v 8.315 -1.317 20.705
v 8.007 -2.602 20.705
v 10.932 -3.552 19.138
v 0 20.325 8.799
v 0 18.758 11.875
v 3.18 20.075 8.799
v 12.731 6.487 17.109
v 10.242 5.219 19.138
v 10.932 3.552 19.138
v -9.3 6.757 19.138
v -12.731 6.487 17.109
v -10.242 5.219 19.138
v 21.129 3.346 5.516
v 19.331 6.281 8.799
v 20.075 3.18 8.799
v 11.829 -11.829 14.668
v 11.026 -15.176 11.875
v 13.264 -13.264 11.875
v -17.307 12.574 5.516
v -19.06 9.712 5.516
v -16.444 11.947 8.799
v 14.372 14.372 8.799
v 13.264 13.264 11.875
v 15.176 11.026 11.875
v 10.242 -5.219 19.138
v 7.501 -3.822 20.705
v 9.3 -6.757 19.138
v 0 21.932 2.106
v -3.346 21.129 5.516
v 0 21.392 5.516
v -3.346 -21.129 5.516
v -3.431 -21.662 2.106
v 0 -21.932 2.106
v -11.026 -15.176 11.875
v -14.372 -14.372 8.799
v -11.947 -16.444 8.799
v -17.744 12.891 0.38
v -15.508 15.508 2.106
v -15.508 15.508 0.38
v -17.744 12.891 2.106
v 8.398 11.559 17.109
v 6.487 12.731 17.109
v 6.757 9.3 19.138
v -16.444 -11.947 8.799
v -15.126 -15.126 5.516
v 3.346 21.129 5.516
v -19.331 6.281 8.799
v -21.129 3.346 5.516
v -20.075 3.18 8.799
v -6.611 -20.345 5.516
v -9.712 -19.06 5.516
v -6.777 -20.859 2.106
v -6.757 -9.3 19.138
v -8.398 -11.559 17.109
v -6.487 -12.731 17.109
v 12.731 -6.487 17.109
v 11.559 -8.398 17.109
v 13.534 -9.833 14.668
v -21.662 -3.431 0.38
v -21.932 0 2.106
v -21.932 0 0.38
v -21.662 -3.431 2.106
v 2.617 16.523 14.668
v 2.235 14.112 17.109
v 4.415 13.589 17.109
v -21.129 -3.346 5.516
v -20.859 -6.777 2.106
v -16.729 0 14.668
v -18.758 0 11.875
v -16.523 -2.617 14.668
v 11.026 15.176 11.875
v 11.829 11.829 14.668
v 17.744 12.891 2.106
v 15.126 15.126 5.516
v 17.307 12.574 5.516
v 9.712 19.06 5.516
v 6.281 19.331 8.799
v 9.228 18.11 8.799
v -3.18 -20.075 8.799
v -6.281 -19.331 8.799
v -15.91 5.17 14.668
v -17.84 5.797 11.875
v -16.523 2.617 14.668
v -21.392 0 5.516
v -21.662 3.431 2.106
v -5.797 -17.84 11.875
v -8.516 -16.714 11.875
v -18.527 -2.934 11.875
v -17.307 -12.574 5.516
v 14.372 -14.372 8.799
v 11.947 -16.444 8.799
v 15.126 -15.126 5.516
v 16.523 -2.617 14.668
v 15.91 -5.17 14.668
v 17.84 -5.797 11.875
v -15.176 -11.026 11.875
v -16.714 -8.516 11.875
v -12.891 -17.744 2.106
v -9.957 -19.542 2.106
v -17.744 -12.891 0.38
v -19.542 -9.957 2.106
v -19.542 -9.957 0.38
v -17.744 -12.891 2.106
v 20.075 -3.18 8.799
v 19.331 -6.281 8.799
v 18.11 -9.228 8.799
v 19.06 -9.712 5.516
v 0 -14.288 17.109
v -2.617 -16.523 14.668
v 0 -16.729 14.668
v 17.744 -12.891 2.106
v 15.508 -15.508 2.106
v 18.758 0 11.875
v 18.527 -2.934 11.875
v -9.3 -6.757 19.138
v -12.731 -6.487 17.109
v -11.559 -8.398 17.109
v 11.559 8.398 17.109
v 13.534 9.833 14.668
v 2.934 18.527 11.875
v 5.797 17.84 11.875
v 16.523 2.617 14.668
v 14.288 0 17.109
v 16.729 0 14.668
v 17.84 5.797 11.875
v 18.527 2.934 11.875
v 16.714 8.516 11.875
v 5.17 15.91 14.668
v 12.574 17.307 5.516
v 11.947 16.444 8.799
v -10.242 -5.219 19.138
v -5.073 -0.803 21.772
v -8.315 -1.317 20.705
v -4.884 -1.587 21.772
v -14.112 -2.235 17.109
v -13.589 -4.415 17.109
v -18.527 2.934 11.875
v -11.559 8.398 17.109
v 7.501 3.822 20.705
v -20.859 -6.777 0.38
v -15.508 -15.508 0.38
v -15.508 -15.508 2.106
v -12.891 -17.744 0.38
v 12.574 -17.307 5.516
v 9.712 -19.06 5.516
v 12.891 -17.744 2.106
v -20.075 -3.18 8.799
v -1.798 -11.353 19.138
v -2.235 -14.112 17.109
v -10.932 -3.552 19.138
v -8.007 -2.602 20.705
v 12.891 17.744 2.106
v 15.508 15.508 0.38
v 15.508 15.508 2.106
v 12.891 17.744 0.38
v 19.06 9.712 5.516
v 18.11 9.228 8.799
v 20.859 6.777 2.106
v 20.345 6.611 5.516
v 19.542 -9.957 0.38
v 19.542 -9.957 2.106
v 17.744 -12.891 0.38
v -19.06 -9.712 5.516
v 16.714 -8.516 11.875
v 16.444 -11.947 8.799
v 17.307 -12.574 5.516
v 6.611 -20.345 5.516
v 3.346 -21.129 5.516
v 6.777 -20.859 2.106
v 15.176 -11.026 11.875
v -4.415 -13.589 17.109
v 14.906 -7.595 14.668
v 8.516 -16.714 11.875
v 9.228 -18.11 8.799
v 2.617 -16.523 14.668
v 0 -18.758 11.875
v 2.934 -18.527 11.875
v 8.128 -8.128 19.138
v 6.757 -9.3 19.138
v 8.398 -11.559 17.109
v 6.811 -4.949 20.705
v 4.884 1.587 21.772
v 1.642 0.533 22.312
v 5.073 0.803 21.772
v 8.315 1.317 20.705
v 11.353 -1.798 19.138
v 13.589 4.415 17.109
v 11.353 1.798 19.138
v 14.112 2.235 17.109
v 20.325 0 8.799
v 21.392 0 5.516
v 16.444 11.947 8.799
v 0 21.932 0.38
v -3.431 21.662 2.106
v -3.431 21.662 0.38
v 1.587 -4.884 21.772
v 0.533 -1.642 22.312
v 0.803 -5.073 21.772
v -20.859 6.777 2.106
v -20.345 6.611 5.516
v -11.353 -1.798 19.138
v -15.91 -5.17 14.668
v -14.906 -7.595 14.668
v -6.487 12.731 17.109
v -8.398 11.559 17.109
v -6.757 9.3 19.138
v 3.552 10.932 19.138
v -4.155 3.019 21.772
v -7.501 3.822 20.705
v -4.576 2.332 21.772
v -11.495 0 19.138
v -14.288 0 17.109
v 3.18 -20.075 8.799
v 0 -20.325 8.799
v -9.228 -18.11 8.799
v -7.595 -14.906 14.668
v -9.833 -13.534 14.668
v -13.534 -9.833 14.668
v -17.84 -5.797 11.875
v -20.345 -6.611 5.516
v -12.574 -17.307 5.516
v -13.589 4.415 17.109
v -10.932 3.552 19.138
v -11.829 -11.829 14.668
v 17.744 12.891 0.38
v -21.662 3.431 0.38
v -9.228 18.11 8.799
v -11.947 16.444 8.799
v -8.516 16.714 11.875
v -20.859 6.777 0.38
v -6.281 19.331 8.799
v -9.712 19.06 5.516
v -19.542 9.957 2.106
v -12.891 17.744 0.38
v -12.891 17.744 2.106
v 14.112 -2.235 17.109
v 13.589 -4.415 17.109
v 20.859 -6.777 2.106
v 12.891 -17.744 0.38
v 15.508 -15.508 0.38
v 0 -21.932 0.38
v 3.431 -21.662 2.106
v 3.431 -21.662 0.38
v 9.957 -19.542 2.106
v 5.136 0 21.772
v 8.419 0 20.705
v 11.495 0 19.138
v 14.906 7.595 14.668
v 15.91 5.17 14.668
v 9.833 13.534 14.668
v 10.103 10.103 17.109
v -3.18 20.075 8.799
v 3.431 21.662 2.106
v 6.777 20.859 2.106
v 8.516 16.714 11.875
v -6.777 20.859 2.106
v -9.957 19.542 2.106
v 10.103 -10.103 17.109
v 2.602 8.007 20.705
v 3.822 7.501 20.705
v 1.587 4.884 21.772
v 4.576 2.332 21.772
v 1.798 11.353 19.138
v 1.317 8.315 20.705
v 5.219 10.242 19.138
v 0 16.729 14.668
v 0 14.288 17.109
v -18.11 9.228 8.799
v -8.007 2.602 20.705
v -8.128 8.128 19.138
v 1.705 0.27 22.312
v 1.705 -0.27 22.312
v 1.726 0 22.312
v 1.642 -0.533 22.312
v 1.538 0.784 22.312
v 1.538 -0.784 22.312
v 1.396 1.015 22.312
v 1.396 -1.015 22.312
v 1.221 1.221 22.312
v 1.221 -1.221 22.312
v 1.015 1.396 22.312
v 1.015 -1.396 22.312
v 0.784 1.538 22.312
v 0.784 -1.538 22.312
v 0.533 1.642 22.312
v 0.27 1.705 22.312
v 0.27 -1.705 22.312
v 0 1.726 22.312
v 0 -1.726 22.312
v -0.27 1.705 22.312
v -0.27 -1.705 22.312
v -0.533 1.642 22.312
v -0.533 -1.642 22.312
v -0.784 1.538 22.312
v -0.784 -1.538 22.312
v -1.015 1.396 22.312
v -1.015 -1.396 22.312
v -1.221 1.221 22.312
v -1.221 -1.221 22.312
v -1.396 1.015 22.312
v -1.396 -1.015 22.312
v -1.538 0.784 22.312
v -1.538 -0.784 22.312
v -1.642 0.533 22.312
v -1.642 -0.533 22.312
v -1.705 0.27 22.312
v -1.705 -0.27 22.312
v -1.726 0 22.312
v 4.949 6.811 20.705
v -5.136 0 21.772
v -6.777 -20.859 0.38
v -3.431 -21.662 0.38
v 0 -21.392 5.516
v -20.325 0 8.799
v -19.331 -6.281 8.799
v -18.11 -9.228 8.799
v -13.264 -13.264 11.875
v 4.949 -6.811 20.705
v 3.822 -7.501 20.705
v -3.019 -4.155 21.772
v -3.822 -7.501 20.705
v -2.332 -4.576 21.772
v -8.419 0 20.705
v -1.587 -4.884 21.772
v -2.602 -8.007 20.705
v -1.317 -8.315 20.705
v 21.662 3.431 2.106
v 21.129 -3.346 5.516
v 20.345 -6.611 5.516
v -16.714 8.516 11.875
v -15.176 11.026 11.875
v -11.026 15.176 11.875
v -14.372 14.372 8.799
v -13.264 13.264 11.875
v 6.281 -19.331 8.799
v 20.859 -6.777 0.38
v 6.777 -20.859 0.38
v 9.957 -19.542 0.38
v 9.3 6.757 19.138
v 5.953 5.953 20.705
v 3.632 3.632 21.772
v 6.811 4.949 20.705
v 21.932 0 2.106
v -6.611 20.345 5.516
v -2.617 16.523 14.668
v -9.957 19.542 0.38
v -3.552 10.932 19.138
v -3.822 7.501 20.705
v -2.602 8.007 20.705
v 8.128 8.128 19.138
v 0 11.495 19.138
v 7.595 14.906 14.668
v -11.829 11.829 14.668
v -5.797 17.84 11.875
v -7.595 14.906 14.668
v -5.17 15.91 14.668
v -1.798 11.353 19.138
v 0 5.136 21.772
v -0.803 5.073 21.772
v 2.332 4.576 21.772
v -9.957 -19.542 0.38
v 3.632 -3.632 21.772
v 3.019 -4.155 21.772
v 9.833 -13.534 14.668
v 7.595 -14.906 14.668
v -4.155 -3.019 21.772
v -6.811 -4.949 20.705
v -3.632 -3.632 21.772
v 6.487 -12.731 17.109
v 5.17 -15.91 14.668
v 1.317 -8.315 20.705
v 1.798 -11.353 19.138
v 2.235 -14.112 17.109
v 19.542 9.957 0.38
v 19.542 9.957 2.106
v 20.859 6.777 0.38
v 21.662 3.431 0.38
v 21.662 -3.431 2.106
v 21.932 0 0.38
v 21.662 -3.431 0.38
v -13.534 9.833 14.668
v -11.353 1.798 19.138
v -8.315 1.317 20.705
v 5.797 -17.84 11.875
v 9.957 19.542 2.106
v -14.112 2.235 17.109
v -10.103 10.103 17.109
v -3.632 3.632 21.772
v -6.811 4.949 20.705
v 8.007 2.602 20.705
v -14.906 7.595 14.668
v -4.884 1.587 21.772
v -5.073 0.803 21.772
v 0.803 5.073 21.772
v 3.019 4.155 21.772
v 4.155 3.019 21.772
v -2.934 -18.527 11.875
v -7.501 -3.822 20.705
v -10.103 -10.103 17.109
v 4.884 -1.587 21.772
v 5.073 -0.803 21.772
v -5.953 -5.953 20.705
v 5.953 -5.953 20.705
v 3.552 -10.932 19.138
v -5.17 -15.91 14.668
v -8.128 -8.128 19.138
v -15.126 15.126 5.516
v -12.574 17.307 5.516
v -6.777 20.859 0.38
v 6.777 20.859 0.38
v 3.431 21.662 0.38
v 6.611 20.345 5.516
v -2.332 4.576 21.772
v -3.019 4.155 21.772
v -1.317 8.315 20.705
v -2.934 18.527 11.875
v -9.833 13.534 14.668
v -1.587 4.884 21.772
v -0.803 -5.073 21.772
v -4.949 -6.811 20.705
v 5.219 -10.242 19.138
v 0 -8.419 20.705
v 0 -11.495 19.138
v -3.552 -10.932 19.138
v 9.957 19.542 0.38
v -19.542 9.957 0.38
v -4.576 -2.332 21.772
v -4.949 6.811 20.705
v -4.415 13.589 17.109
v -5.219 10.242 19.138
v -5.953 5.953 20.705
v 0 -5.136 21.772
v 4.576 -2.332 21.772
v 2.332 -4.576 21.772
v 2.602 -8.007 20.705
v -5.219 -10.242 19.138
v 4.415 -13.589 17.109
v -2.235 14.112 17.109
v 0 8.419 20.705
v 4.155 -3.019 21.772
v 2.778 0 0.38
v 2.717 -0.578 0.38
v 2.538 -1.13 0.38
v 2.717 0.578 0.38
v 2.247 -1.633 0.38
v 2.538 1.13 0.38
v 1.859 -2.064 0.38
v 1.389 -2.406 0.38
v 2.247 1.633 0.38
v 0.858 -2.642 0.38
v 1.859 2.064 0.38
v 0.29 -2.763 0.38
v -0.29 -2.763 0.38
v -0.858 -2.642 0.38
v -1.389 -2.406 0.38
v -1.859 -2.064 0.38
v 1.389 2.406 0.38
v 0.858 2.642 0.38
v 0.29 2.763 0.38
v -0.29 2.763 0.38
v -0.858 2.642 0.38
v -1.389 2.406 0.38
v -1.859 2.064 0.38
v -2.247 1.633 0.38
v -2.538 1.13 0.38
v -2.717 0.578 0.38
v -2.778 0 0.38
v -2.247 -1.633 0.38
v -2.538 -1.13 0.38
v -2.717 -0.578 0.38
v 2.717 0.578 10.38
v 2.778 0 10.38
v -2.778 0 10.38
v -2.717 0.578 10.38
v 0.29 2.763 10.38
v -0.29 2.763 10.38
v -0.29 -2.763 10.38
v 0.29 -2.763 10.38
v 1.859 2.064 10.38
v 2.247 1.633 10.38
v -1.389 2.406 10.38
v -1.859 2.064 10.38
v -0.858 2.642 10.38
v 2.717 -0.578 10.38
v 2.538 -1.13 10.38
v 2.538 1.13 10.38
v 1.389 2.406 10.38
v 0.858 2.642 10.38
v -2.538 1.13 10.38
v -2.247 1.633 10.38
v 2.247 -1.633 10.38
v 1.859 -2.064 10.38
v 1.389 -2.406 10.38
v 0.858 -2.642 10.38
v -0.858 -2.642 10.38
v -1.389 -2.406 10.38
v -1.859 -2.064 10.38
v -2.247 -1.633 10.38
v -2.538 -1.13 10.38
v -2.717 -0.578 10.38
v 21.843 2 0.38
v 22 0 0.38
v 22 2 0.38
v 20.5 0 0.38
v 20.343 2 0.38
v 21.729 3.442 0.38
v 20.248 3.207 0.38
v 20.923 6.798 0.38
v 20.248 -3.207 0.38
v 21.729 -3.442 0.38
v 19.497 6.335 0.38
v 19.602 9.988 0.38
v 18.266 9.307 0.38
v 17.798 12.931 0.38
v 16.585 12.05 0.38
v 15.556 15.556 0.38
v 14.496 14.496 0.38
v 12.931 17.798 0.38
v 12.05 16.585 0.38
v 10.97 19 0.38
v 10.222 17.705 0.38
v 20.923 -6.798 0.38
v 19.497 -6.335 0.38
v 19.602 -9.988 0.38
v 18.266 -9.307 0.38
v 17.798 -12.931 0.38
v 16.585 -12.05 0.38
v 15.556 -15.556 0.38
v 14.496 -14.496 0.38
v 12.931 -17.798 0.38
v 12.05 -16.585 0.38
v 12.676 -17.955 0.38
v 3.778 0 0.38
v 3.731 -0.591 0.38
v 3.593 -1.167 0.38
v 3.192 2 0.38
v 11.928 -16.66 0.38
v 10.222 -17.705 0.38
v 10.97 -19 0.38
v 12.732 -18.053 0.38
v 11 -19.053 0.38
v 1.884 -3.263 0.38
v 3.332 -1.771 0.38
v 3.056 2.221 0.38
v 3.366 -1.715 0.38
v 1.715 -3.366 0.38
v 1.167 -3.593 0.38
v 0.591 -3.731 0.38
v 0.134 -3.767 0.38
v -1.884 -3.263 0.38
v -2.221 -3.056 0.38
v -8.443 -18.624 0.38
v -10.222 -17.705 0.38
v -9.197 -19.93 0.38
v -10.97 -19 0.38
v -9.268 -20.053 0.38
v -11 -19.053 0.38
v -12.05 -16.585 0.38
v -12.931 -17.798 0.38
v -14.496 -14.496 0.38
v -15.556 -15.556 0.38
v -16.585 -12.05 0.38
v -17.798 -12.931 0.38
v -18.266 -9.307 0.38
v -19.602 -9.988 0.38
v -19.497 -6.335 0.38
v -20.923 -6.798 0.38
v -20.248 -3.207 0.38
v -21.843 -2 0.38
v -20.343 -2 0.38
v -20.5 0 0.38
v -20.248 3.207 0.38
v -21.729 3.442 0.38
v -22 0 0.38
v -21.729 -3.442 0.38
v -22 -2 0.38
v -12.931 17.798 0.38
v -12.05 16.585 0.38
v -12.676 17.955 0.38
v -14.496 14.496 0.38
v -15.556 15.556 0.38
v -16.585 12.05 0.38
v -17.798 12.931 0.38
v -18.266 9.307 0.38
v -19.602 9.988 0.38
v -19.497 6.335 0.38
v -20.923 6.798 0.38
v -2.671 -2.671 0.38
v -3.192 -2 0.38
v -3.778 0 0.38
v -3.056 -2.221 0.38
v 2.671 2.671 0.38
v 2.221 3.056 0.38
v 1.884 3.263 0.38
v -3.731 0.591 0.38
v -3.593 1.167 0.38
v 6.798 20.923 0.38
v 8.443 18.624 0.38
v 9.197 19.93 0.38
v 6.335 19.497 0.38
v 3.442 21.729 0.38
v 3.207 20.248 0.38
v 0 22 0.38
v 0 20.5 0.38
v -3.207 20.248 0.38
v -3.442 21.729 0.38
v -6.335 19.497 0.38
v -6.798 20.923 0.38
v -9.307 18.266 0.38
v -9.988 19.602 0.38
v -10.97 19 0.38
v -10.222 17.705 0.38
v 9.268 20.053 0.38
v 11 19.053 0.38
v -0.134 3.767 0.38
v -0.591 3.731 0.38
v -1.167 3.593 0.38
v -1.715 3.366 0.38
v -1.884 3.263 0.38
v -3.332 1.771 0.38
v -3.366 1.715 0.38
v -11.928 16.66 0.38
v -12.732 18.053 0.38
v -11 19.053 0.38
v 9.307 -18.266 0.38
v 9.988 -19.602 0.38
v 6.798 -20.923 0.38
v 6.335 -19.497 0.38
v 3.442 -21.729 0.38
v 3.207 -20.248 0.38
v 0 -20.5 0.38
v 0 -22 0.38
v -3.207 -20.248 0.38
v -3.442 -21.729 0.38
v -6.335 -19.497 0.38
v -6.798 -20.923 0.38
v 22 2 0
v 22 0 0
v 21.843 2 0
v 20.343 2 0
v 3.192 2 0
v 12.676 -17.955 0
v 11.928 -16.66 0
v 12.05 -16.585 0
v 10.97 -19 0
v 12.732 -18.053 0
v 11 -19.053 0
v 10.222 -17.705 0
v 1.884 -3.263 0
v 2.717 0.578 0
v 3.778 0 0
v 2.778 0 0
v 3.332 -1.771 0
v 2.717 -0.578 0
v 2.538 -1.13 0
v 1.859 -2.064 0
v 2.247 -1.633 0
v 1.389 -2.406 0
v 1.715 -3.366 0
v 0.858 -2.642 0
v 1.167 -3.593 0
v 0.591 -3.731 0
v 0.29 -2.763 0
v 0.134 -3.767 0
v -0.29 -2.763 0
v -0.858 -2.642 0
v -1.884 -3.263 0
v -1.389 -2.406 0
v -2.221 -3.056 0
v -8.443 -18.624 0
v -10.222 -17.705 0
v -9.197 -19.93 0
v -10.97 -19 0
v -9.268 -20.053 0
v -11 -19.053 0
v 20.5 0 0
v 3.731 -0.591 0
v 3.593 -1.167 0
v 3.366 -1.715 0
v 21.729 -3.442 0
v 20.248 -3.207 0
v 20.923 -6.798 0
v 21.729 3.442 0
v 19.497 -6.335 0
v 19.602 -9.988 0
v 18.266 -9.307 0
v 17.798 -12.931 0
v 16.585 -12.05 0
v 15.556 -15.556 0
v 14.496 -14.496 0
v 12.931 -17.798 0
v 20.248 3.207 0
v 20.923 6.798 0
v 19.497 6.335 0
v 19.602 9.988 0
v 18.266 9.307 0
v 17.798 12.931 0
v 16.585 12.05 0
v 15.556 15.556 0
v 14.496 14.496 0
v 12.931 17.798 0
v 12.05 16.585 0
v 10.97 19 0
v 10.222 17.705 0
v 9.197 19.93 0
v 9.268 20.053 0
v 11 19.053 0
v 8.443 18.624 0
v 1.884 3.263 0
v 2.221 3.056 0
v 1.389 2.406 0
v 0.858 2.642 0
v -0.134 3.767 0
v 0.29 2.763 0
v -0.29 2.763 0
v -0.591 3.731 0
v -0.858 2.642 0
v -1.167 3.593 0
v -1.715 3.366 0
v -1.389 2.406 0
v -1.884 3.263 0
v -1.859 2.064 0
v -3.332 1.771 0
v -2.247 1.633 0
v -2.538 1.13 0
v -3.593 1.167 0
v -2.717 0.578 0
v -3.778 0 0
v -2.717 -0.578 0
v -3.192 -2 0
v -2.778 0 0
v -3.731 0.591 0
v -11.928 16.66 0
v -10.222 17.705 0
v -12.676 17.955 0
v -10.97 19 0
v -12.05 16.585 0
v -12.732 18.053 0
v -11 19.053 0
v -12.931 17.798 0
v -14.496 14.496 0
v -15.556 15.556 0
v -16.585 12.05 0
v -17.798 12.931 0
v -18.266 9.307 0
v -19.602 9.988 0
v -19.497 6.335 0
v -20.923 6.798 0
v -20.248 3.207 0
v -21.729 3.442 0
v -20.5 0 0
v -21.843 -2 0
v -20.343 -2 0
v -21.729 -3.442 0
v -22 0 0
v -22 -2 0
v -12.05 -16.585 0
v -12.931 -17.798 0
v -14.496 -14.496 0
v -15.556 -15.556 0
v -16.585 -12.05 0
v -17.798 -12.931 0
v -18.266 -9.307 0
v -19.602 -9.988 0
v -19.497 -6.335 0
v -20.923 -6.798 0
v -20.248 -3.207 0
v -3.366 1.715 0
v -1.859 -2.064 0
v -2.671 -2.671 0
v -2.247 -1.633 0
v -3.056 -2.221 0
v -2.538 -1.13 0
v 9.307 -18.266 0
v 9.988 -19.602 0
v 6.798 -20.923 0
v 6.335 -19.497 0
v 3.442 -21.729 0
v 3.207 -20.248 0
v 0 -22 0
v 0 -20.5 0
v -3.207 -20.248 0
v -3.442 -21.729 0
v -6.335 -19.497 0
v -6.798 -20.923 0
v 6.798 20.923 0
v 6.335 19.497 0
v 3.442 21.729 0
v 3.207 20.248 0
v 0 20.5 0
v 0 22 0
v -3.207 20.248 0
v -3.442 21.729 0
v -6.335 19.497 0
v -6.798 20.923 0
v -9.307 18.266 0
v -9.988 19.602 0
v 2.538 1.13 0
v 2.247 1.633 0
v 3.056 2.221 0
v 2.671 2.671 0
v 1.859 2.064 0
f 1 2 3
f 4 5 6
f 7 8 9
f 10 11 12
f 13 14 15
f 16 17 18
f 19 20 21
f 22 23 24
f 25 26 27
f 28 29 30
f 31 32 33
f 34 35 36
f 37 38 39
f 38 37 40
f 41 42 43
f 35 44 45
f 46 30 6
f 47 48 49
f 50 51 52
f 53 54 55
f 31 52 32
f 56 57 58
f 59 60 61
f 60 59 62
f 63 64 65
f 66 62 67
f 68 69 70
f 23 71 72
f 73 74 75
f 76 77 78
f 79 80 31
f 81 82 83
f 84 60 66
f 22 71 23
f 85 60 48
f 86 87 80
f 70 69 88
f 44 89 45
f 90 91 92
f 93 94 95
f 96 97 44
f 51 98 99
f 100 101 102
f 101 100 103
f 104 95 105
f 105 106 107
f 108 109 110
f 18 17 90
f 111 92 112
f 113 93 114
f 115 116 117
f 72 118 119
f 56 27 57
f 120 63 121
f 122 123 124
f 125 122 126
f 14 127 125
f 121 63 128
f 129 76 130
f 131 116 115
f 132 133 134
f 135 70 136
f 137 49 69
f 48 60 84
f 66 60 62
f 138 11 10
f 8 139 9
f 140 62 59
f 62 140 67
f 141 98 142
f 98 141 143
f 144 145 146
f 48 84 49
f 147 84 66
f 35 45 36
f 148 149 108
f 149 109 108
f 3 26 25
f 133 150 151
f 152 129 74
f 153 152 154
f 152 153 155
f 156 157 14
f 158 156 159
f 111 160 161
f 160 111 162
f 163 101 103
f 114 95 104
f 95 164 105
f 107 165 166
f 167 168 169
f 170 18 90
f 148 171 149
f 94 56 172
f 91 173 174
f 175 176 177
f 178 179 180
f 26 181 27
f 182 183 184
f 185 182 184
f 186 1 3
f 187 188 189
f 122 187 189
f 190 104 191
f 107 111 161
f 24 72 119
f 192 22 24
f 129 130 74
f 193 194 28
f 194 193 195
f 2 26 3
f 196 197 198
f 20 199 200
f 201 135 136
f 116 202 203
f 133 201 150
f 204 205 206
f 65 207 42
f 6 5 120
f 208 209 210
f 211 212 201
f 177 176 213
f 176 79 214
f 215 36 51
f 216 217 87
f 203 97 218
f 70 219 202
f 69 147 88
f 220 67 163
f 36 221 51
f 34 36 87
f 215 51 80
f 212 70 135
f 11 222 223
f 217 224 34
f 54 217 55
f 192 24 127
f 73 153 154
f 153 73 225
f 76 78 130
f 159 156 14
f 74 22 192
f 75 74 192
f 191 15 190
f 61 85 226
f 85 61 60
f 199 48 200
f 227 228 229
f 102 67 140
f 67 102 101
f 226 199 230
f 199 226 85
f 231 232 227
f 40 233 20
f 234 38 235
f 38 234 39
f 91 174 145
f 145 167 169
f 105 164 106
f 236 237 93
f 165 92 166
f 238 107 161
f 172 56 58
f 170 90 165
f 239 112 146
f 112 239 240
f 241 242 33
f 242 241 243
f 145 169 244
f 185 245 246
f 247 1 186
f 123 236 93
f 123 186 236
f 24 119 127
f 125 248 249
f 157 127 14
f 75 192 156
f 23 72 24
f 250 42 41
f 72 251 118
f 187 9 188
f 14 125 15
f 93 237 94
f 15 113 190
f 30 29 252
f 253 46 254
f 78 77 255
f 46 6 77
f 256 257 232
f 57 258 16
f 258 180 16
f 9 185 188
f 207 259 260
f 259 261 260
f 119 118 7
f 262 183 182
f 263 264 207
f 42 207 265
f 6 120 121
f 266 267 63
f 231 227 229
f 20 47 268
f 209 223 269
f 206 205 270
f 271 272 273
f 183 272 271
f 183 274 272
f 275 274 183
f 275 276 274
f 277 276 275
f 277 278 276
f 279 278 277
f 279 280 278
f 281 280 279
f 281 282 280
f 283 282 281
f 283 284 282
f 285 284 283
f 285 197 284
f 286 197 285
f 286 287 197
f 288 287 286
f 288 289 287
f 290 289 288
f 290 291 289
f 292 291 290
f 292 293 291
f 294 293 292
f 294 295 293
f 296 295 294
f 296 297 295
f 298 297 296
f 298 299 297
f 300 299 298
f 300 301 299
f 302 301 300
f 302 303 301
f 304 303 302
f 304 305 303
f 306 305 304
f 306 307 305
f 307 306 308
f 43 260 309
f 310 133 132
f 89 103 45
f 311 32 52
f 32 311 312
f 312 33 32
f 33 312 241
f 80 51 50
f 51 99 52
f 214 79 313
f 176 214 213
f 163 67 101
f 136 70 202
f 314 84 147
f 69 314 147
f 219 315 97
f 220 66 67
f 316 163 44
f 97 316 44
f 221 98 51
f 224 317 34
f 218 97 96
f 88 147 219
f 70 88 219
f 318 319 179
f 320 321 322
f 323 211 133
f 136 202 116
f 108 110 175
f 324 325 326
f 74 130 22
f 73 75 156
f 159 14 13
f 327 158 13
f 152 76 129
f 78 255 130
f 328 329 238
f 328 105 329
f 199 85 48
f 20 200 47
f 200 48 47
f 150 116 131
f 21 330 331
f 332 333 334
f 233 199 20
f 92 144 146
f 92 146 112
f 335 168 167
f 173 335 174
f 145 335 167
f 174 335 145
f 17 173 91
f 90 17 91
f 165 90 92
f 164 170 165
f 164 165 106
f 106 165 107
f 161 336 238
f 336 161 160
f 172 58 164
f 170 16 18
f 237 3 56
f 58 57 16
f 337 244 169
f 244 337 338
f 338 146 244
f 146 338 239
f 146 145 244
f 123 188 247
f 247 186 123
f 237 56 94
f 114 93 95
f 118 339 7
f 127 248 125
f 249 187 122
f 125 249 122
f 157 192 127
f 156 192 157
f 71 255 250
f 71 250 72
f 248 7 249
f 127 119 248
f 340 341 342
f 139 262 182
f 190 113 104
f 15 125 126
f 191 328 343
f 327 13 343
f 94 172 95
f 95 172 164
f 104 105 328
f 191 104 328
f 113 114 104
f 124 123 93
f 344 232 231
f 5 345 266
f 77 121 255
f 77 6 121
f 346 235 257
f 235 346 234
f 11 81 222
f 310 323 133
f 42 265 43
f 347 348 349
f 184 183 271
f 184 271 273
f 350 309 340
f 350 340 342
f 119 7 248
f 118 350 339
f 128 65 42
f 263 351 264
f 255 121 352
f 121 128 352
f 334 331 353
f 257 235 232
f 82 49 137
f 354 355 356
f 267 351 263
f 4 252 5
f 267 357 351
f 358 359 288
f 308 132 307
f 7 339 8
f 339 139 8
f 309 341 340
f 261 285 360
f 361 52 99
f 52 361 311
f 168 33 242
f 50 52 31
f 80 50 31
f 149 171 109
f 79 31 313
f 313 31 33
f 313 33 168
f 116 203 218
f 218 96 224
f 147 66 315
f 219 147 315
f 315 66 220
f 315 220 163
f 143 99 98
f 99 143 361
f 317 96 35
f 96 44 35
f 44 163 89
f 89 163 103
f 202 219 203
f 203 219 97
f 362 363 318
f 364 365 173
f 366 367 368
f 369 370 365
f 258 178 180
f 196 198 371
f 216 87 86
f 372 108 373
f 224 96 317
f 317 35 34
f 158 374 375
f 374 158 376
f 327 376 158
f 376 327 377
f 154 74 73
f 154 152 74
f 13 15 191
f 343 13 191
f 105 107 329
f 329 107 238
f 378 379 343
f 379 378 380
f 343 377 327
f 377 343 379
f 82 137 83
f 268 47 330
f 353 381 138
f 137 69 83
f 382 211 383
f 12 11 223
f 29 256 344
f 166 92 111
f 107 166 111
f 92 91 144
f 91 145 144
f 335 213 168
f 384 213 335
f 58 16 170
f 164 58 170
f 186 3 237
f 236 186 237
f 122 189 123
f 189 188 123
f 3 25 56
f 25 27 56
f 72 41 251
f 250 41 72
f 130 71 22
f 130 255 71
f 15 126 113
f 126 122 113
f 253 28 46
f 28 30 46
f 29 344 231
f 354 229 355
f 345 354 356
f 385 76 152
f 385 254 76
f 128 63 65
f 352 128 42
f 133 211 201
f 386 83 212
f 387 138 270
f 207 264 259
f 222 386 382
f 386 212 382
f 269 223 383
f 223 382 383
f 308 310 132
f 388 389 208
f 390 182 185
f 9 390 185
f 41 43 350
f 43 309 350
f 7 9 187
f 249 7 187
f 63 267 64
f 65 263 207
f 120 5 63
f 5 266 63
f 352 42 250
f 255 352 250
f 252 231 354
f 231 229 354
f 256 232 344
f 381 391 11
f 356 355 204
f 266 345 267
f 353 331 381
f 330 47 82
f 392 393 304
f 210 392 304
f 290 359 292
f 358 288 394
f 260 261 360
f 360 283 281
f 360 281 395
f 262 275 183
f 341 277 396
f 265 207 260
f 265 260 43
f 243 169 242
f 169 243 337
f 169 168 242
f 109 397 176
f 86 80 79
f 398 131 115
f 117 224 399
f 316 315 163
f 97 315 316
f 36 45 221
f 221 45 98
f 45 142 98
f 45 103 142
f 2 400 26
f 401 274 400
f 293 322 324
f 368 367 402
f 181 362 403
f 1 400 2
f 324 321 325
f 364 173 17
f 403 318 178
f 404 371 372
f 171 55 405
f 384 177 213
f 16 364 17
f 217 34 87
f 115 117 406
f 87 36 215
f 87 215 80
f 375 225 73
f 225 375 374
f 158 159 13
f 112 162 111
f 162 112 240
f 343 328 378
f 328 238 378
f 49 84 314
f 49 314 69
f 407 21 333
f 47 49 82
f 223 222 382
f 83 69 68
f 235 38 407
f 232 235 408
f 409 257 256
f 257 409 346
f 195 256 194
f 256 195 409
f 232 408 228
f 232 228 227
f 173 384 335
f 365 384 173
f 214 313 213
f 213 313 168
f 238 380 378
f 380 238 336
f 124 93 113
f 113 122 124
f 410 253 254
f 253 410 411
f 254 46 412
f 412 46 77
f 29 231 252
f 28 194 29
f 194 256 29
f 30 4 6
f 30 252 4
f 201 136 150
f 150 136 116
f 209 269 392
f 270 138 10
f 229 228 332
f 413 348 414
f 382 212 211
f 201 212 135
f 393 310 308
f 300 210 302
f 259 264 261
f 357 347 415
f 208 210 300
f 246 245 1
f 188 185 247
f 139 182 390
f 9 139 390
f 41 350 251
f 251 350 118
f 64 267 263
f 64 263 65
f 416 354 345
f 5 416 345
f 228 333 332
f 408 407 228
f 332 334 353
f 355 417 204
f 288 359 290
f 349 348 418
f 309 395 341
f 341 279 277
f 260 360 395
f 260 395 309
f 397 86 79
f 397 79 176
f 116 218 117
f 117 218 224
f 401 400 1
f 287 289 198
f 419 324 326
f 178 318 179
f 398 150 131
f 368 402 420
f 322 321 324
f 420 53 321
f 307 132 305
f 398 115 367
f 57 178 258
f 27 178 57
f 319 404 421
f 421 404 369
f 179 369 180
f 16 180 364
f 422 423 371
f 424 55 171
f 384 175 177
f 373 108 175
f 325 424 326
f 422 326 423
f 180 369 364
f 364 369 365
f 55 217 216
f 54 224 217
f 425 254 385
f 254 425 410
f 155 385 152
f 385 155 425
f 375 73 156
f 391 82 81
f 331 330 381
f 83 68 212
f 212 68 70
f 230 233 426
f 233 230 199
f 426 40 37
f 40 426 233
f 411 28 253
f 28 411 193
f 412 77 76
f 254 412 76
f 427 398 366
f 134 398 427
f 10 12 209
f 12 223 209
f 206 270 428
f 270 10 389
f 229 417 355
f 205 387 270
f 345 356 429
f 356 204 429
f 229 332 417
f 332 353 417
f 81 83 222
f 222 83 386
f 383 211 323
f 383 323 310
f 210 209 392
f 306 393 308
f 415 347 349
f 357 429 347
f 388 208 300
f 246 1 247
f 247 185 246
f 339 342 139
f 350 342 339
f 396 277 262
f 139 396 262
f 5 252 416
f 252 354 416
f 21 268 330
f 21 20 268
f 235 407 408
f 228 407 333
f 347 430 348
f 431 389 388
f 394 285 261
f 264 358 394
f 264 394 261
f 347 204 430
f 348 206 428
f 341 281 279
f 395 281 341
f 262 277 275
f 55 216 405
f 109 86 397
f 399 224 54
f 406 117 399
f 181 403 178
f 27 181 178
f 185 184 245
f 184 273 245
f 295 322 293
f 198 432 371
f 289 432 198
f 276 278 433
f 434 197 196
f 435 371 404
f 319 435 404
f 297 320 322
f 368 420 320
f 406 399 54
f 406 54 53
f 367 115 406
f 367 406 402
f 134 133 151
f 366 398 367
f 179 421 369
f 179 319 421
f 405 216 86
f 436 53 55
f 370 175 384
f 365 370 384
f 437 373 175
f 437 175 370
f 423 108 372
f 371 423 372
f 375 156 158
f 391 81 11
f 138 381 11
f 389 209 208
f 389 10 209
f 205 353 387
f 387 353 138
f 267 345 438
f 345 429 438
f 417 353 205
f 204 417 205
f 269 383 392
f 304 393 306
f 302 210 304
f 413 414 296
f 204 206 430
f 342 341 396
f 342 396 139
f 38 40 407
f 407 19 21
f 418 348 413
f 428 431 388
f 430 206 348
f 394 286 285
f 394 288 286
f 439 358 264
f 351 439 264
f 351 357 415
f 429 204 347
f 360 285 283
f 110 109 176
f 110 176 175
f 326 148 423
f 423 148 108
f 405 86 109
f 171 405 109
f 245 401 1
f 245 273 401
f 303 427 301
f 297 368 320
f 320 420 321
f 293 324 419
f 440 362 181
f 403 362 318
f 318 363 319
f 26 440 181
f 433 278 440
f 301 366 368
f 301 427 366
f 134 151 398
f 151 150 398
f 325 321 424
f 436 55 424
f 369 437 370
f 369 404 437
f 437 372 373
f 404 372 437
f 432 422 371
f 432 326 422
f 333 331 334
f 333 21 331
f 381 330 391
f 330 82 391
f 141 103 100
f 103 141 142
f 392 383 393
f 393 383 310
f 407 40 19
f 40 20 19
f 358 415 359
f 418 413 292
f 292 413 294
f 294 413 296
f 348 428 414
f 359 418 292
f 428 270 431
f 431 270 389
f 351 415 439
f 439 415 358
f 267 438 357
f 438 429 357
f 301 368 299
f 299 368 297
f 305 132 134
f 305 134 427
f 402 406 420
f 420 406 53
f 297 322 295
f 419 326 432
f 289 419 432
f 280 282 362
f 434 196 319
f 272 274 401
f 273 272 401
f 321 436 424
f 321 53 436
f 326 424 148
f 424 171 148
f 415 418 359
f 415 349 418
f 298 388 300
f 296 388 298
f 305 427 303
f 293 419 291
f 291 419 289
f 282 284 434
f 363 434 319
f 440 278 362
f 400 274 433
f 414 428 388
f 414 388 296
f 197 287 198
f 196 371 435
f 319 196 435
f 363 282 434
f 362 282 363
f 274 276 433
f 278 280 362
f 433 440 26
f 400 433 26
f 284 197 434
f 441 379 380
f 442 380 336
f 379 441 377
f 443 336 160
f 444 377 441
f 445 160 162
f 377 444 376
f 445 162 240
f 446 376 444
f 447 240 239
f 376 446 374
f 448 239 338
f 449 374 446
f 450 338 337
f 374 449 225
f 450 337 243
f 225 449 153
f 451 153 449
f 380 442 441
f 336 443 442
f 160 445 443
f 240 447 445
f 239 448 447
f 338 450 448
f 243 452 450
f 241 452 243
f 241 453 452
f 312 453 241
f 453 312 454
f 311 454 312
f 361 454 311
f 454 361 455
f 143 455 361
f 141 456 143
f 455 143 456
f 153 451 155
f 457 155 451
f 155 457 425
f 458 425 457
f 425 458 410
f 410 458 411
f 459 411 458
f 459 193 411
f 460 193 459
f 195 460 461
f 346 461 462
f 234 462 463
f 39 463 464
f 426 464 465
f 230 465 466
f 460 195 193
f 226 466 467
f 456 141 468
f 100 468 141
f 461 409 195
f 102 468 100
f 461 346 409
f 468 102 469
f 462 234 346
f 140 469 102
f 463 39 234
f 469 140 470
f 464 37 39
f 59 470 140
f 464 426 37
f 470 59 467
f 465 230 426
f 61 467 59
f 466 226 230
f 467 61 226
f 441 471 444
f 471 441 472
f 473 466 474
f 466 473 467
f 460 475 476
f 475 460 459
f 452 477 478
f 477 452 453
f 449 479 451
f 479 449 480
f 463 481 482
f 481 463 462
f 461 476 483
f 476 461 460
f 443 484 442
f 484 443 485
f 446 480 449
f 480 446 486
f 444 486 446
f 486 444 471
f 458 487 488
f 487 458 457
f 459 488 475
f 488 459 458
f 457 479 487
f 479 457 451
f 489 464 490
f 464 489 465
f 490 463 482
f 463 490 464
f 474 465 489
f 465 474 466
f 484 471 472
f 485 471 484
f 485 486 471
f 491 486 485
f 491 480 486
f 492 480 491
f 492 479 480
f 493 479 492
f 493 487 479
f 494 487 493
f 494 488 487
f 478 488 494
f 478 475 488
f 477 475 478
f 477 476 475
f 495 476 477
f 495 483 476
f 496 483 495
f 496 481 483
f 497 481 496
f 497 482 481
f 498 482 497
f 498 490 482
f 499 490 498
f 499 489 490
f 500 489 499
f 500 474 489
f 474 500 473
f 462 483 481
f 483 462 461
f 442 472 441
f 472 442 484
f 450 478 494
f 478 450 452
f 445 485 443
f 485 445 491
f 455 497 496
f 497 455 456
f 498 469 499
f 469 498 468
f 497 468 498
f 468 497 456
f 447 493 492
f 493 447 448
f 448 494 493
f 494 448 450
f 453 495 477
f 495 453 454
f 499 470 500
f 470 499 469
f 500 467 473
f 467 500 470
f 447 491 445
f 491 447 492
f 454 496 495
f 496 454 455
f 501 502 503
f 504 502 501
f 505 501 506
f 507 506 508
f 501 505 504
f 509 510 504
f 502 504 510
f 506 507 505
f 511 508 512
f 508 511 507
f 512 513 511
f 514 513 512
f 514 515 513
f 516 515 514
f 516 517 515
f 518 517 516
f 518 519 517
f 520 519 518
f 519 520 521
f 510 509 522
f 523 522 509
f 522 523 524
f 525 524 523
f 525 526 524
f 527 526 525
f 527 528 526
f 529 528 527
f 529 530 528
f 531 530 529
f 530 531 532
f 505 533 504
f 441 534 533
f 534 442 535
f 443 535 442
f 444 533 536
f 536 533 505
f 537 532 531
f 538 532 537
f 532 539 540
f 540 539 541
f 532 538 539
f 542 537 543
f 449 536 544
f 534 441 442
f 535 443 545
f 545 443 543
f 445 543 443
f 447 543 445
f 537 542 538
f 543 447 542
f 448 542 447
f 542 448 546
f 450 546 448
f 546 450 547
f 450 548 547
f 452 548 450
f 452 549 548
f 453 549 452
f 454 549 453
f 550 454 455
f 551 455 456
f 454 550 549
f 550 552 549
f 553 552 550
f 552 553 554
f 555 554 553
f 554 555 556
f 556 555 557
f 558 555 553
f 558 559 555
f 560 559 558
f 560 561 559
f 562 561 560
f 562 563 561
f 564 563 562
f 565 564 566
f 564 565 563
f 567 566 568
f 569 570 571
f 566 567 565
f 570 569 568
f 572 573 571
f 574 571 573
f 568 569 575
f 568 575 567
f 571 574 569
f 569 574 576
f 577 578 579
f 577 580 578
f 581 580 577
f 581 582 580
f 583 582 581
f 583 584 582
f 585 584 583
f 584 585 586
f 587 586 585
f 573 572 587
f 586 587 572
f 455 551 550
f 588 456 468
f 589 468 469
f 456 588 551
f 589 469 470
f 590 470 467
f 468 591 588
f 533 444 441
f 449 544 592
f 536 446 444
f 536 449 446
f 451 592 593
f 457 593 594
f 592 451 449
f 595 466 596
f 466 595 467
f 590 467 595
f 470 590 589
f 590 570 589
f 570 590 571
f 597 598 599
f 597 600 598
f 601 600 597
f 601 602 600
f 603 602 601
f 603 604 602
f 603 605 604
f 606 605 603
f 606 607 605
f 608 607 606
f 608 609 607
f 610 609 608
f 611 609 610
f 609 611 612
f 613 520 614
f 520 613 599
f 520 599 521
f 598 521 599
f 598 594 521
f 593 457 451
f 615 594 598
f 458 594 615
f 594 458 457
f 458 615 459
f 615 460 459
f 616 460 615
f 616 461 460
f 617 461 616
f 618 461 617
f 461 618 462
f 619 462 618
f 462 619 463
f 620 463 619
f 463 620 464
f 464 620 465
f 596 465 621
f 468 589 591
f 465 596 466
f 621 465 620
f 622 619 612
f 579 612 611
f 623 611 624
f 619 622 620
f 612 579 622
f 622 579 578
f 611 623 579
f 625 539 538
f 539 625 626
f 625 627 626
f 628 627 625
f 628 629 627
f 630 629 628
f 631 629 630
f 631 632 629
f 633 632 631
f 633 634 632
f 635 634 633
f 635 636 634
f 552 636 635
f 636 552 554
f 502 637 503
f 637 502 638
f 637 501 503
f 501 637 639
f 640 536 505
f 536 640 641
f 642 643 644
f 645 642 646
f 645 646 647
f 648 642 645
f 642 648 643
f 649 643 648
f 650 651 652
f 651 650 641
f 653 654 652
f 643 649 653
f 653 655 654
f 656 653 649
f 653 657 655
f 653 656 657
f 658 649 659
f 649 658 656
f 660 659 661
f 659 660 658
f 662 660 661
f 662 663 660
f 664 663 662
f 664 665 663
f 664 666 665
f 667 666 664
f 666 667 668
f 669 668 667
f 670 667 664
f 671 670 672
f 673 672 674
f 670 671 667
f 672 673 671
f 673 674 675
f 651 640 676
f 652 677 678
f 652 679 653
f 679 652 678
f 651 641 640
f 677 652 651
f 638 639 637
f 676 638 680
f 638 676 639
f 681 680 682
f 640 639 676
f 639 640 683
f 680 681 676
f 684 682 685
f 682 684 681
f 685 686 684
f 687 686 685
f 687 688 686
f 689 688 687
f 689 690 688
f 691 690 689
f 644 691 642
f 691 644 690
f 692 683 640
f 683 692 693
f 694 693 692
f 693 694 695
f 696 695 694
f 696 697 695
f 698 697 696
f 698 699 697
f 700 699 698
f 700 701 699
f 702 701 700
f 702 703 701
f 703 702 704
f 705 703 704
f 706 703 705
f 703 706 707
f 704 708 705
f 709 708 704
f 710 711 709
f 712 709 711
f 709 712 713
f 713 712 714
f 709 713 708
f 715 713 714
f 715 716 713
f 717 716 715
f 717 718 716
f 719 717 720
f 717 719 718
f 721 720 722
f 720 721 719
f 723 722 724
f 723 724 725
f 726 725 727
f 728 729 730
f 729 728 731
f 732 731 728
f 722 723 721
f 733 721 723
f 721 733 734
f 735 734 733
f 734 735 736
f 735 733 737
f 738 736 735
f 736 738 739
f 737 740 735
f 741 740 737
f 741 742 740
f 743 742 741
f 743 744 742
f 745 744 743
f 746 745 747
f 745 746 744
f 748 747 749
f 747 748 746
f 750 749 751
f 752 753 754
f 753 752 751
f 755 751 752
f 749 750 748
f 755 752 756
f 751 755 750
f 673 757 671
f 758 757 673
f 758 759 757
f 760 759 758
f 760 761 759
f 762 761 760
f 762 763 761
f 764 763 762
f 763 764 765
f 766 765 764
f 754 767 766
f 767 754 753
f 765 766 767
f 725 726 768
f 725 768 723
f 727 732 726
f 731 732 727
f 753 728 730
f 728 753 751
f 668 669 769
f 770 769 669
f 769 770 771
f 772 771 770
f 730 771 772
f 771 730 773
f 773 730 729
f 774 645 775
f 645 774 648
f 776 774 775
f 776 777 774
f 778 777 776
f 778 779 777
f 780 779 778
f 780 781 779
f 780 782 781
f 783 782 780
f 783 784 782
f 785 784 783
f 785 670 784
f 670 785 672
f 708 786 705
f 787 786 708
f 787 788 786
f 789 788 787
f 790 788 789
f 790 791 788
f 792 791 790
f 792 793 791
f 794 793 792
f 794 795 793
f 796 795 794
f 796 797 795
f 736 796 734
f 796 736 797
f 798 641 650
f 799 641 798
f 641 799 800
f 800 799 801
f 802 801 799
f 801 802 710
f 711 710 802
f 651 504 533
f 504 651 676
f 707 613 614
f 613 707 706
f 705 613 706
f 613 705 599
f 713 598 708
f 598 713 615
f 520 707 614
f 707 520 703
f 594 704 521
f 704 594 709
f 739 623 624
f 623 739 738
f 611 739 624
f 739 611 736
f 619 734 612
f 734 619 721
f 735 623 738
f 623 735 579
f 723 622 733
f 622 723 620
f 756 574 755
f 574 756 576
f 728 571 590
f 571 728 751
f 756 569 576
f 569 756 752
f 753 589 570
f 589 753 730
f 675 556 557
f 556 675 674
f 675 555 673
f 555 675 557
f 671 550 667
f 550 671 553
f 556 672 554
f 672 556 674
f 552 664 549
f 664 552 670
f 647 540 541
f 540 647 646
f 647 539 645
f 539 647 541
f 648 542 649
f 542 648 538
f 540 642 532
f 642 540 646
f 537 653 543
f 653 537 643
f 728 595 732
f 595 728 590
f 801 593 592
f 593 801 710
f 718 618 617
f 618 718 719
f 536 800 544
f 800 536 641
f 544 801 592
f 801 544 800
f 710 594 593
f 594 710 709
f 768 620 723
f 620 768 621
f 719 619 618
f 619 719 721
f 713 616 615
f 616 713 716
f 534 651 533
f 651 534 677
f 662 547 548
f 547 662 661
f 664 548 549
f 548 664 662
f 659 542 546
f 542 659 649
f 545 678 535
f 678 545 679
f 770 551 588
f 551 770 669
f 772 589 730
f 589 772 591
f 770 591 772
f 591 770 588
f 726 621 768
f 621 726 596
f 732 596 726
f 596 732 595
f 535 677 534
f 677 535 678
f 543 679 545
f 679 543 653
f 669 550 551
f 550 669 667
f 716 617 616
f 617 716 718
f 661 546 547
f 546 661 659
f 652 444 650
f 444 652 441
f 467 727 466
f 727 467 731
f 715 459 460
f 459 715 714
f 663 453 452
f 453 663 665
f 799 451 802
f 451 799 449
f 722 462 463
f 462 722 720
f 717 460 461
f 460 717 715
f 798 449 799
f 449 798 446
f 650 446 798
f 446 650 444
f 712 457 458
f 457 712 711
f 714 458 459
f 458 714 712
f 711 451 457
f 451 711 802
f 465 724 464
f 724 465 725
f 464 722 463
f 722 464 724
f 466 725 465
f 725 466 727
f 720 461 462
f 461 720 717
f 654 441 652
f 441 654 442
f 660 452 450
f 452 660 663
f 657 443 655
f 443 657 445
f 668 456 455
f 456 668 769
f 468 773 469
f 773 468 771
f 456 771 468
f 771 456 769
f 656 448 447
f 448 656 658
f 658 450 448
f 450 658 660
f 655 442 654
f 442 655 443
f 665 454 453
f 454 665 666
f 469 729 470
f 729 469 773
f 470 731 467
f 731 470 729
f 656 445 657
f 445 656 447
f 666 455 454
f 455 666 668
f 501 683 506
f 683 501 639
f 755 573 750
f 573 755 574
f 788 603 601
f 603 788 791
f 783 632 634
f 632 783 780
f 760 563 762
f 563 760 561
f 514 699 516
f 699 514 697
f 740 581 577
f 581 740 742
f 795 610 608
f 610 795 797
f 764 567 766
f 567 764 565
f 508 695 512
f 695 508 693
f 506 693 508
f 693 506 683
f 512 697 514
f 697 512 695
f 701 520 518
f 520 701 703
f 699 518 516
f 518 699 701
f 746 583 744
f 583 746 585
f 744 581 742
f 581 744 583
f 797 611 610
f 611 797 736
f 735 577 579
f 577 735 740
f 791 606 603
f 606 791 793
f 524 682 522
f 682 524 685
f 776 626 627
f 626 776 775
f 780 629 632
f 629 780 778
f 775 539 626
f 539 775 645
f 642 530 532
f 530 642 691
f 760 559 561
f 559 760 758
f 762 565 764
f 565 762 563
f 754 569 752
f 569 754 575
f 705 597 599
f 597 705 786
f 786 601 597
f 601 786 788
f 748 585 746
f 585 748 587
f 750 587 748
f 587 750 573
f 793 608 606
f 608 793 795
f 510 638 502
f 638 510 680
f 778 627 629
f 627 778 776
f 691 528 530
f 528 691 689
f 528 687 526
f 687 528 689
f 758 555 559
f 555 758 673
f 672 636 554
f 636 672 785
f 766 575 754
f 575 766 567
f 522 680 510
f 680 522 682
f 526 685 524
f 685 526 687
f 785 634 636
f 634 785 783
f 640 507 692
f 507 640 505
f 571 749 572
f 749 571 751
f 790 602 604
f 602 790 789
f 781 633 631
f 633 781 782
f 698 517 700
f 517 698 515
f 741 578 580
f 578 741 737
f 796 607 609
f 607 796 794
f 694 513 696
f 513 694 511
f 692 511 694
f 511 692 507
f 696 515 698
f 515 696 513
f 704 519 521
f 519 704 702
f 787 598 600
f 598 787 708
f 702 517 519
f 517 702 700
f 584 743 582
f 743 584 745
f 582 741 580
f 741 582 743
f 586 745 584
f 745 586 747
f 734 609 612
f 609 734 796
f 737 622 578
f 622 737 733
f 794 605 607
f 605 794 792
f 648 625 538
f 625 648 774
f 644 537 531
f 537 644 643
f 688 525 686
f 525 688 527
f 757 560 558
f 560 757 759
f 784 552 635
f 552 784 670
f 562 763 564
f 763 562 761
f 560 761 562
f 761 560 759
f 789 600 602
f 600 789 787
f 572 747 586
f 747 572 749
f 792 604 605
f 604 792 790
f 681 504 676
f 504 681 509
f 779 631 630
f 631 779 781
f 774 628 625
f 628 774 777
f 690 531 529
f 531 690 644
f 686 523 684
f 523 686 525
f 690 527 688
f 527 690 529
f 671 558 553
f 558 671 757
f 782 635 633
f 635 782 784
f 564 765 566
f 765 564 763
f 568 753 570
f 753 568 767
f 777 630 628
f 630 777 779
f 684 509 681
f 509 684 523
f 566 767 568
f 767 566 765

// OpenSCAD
// file: polyScrewThread_r1.scad
/*
 *    polyScrewThread_r1.scad    by aubenc @ Thingiverse
 *
 * This script contains the library modules that can be used to generate
 * threaded rods, screws and nuts.
 *
 * http://www.thingiverse.com/thing:8796
 *
 * CC Public Domain
 */


/* Example:
 * Just a 100mm long threaded rod.
 *
 * screw_thread(15,   // Outer diameter of the thread
 *               4,   // Step, traveling length per turn, also, tooth height, whatever...
 *              55,   // Degrees for the shape of the tooth 
 *                       (XY plane = 0, Z = 90, btw, 0 and 90 will/should not work...)
 *             100,   // Length (Z) of the tread
 *            PI/2,   // Resolution, one face each "PI/2" mm of the perimeter, 
 *               0);  // Countersink style:
 *                         -2 - Not even flat ends
 *                         -1 - Bottom (countersink'd and top flat)
 *                          0 - None (top and bottom flat)
 *                          1 - Top (bottom flat)
 *                          2 - Both (countersink'd)
 */
module screw_thread(od,st,lf0,lt,rs,cs)
{
    or=od/2;
    ir=or-st/2*cos(lf0)/sin(lf0);
    pf=2*PI*or;
    sn=floor(pf/rs);
    lfxy=360/sn;
    ttn=round(lt/st+1);
    zt=st/sn;

    intersection()
    {
        if (cs >= -1)
        {
           thread_shape(cs,lt,or,ir,sn,st);
        }

        full_thread(ttn,st,sn,zt,lfxy,or,ir);
    }
}

/* Example.
 * A nut for the thread rod example.
 *
 * hexa_nut(24,  // Distance between flats
 *           8,  // Height 
 *           4,  // Step height (the half will be used to countersink the ends)
 *          55,  // Degrees (same as used for the screw_thread example)
 *          15,  // Outer diameter of the thread to match
 *         0.5)  // Resolution, you may want to set this to small values
 *                  (quite high res) to minimize overhang issues
 *
 */
module hex_nut(df,hg,sth,clf,cod,crs)
{

    difference()
    {
        hex_head(hg,df);

        hex_countersink_ends(sth/2,cod,clf,crs,hg);

        screw_thread(cod,sth,clf,hg,crs,-2);
    }
}


module hex_screw(od,st,lf0,lt,rs,cs,df,hg,ntl,ntd)
{
    ntr=od/2-(st/2)*cos(lf0)/sin(lf0);

    union()
    {
        hex_head(hg,df);

        translate([0,0,hg])
        if ( ntl == 0 )
        {
            cylinder(h=0.01, r=ntr, center=true);
        }
        else
        {
            if ( ntd == -1 )
            {
                cylinder(h=ntl+0.01, r=ntr, $fn=floor(od*PI/rs), center=false);
            }
            else if ( ntd == 0 )
            {
                union()
                {
                    cylinder(h=ntl-st/2,
                             r=od/2, $fn=floor(od*PI/rs), center=false);

                    translate([0,0,ntl-st/2])
                    cylinder(h=st/2,
                             r1=od/2, r2=ntr, 
                             $fn=floor(od*PI/rs), center=false);
                }
            }
            else
            {
                cylinder(h=ntl, r=ntd/2, $fn=ntd*PI/rs, center=false);
            }
        }

        translate([0,0,ntl+hg]) screw_thread(od,st,lf0,lt,rs,cs);
    }
}

module hex_screw_0(od,st,lf0,lt,rs,cs,df,hg,ntl,ntd)
{
    ntr=od/2-(st/2)*cos(lf0)/sin(lf0);

    union()
    {
        hex_head_0(hg,df);

        translate([0,0,hg])
        if ( ntl == 0 )
        {
            cylinder(h=0.01, r=ntr, center=true);
        }
        else
        {
            if ( ntd == -1 )
            {
                cylinder(h=ntl+0.01, r=ntr, $fn=floor(od*PI/rs), center=false);
            }
            else if ( ntd == 0 )
            {
                union()
                {
                    cylinder(h=ntl-st/2,
                             r=od/2, $fn=floor(od*PI/rs), center=false);

                    translate([0,0,ntl-st/2])
                    cylinder(h=st/2,
                             r1=od/2, r2=ntr, 
                             $fn=floor(od*PI/rs), center=false);
                }
            }
            else
            {
                cylinder(h=ntl, r=ntd/2, $fn=ntd*PI/rs, center=false);
            }
        }

        translate([0,0,ntl+hg]) screw_thread(od,st,lf0,lt,rs,cs);
    }
}

module thread_shape(cs,lt,or,ir,sn,st)
{
    if ( cs == 0 )
    {
        cylinder(h=lt, r=or, $fn=sn, center=false);
    }
    else
    {
        union()
        {
            translate([0,0,st/2])
              cylinder(h=lt-st+0.005, r=or, $fn=sn, center=false);

            if ( cs == -1 || cs == 2 )
            {
                cylinder(h=st/2, r1=ir, r2=or, $fn=sn, center=false);
            }
            else
            {
                cylinder(h=st/2, r=or, $fn=sn, center=false);
            }

            translate([0,0,lt-st/2])
            if ( cs == 1 || cs == 2 )
            {
                  cylinder(h=st/2, r1=or, r2=ir, $fn=sn, center=false);
            }
            else
            {
                cylinder(h=st/2, r=or, $fn=sn, center=false);
            }
        }
    }
}

module full_thread(ttn,st,sn,zt,lfxy,or,ir)
{
  if(ir >= 0.2)
  {
    for(i=[0:ttn-1])
    {
        for(j=[0:sn-1])
			assign( pt = [	[0,                  0,                  i*st-st            ],
                        [ir*cos(j*lfxy),     ir*sin(j*lfxy),     i*st+j*zt-st       ],
                        [ir*cos((j+1)*lfxy), ir*sin((j+1)*lfxy), i*st+(j+1)*zt-st   ],
								[0,0,i*st],
                        [or*cos(j*lfxy),     or*sin(j*lfxy),     i*st+j*zt-st/2     ],
                        [or*cos((j+1)*lfxy), or*sin((j+1)*lfxy), i*st+(j+1)*zt-st/2 ],
                        [ir*cos(j*lfxy),     ir*sin(j*lfxy),     i*st+j*zt          ],
                        [ir*cos((j+1)*lfxy), ir*sin((j+1)*lfxy), i*st+(j+1)*zt      ],
                        [0,                  0,                  i*st+st            ]	])
        {
            polyhedron(points=pt,
              		  triangles=[	[1,0,3],[1,3,6],[6,3,8],[1,6,4],
											[0,1,2],[1,4,2],[2,4,5],[5,4,6],[5,6,7],[7,6,8],
											[7,8,3],[0,2,3],[3,2,7],[7,2,5]	]);
        }
    }
  }
  else
  {
    echo("Step Degrees too agresive, the thread will not be made!!");
    echo("Try to increase de value for the degrees and/or...");
    echo(" decrease the pitch value and/or...");
    echo(" increase the outer diameter value.");
  }
}

module hex_head(hg,df)
{
	rd0=df/2/sin(60);
	x0=0;	x1=df/2;	x2=x1+hg/2;
	y0=0;	y1=hg/2;	y2=hg;

	intersection()
	{
	   cylinder(h=hg, r=rd0, $fn=6, center=false);

		rotate_extrude(convexity=10, $fn=6*round(df*PI/6/0.5))
		polygon([ [x0,y0],[x1,y0],[x2,y1],[x1,y2],[x0,y2] ]);
	}
}

module hex_head_0(hg,df)
{
    cylinder(h=hg, r=df/2/sin(60), $fn=6, center=false);
}

module hex_countersink_ends(chg,cod,clf,crs,hg)
{
    translate([0,0,-0.1])
    cylinder(h=chg+0.01, 
             r1=cod/2, 
             r2=cod/2-(chg+0.1)*cos(clf)/sin(clf),
             $fn=floor(cod*PI/crs), center=false);

    translate([0,0,hg-chg+0.1])
    cylinder(h=chg+0.01, 
             r1=cod/2-(chg+0.1)*cos(clf)/sin(clf),
             r2=cod/2, 
             $fn=floor(cod*PI/crs), center=false);
}
// main file
include <polyScrewThread_r1.scad>
$fn=40;

/**********
* Variables
***********/
BALL_DIAMETER = 44;
INSERT_DRILL_DIAMETER = 5.556;
INSERT_DRILL_DEPTH = 10;



/****************
* Modules
*****************/
module threaded_insert_cutout(h=INSERT_DRILL_DEPTH){
    cylinder(r=(INSERT_DRILL_DIAMETER/2),h, $fn=30);
}

module countersink_end(chg,cod,clf,crs,hg)
{
    translate([0,0,-0.1])
    cylinder(h=chg+0.01, 
             r1=cod/2, 
             r2=cod/2-(chg+0.1)*cos(clf)/sin(clf),
             $fn=floor(cod*PI/crs), center=false);
}


module peel_off_cutout(){
    
    difference(){
        cylinder(d=BALL_DIAMETER, h=.38);
        cylinder(d=BALL_DIAMETER-3, h=.38);
     }
             
     
    difference(){
        union(){
            for(r=[0:(360/6):360]){
                rotate([0,0,r]){
                   translate([0,0,0]){
                        cube([BALL_DIAMETER/2,2,.38]);
                   }
                }
            }
            
            // buffer around insert
            cylinder(d=INSERT_DRILL_DIAMETER+2, h=.38);
        }

        threaded_insert_cutout(h=INSERT_DRILL_DEPTH);
        
    }
    

     

    
}


/************
* Main Render
*************/
translate([0,0,.38]){
    difference(){
        sphere(d=BALL_DIAMETER);
        
        //Cut the floor
        translate([-1*(BALL_DIAMETER/2), 
                    -1*(BALL_DIAMETER/2), 
                    -1*(BALL_DIAMETER)]){
            cube([BALL_DIAMETER,BALL_DIAMETER,BALL_DIAMETER]);
        }
        
        // Threaded Insert hole
        threaded_insert_cutout(h=INSERT_DRILL_DEPTH);

         
    }
}

peel_off_cutout();
